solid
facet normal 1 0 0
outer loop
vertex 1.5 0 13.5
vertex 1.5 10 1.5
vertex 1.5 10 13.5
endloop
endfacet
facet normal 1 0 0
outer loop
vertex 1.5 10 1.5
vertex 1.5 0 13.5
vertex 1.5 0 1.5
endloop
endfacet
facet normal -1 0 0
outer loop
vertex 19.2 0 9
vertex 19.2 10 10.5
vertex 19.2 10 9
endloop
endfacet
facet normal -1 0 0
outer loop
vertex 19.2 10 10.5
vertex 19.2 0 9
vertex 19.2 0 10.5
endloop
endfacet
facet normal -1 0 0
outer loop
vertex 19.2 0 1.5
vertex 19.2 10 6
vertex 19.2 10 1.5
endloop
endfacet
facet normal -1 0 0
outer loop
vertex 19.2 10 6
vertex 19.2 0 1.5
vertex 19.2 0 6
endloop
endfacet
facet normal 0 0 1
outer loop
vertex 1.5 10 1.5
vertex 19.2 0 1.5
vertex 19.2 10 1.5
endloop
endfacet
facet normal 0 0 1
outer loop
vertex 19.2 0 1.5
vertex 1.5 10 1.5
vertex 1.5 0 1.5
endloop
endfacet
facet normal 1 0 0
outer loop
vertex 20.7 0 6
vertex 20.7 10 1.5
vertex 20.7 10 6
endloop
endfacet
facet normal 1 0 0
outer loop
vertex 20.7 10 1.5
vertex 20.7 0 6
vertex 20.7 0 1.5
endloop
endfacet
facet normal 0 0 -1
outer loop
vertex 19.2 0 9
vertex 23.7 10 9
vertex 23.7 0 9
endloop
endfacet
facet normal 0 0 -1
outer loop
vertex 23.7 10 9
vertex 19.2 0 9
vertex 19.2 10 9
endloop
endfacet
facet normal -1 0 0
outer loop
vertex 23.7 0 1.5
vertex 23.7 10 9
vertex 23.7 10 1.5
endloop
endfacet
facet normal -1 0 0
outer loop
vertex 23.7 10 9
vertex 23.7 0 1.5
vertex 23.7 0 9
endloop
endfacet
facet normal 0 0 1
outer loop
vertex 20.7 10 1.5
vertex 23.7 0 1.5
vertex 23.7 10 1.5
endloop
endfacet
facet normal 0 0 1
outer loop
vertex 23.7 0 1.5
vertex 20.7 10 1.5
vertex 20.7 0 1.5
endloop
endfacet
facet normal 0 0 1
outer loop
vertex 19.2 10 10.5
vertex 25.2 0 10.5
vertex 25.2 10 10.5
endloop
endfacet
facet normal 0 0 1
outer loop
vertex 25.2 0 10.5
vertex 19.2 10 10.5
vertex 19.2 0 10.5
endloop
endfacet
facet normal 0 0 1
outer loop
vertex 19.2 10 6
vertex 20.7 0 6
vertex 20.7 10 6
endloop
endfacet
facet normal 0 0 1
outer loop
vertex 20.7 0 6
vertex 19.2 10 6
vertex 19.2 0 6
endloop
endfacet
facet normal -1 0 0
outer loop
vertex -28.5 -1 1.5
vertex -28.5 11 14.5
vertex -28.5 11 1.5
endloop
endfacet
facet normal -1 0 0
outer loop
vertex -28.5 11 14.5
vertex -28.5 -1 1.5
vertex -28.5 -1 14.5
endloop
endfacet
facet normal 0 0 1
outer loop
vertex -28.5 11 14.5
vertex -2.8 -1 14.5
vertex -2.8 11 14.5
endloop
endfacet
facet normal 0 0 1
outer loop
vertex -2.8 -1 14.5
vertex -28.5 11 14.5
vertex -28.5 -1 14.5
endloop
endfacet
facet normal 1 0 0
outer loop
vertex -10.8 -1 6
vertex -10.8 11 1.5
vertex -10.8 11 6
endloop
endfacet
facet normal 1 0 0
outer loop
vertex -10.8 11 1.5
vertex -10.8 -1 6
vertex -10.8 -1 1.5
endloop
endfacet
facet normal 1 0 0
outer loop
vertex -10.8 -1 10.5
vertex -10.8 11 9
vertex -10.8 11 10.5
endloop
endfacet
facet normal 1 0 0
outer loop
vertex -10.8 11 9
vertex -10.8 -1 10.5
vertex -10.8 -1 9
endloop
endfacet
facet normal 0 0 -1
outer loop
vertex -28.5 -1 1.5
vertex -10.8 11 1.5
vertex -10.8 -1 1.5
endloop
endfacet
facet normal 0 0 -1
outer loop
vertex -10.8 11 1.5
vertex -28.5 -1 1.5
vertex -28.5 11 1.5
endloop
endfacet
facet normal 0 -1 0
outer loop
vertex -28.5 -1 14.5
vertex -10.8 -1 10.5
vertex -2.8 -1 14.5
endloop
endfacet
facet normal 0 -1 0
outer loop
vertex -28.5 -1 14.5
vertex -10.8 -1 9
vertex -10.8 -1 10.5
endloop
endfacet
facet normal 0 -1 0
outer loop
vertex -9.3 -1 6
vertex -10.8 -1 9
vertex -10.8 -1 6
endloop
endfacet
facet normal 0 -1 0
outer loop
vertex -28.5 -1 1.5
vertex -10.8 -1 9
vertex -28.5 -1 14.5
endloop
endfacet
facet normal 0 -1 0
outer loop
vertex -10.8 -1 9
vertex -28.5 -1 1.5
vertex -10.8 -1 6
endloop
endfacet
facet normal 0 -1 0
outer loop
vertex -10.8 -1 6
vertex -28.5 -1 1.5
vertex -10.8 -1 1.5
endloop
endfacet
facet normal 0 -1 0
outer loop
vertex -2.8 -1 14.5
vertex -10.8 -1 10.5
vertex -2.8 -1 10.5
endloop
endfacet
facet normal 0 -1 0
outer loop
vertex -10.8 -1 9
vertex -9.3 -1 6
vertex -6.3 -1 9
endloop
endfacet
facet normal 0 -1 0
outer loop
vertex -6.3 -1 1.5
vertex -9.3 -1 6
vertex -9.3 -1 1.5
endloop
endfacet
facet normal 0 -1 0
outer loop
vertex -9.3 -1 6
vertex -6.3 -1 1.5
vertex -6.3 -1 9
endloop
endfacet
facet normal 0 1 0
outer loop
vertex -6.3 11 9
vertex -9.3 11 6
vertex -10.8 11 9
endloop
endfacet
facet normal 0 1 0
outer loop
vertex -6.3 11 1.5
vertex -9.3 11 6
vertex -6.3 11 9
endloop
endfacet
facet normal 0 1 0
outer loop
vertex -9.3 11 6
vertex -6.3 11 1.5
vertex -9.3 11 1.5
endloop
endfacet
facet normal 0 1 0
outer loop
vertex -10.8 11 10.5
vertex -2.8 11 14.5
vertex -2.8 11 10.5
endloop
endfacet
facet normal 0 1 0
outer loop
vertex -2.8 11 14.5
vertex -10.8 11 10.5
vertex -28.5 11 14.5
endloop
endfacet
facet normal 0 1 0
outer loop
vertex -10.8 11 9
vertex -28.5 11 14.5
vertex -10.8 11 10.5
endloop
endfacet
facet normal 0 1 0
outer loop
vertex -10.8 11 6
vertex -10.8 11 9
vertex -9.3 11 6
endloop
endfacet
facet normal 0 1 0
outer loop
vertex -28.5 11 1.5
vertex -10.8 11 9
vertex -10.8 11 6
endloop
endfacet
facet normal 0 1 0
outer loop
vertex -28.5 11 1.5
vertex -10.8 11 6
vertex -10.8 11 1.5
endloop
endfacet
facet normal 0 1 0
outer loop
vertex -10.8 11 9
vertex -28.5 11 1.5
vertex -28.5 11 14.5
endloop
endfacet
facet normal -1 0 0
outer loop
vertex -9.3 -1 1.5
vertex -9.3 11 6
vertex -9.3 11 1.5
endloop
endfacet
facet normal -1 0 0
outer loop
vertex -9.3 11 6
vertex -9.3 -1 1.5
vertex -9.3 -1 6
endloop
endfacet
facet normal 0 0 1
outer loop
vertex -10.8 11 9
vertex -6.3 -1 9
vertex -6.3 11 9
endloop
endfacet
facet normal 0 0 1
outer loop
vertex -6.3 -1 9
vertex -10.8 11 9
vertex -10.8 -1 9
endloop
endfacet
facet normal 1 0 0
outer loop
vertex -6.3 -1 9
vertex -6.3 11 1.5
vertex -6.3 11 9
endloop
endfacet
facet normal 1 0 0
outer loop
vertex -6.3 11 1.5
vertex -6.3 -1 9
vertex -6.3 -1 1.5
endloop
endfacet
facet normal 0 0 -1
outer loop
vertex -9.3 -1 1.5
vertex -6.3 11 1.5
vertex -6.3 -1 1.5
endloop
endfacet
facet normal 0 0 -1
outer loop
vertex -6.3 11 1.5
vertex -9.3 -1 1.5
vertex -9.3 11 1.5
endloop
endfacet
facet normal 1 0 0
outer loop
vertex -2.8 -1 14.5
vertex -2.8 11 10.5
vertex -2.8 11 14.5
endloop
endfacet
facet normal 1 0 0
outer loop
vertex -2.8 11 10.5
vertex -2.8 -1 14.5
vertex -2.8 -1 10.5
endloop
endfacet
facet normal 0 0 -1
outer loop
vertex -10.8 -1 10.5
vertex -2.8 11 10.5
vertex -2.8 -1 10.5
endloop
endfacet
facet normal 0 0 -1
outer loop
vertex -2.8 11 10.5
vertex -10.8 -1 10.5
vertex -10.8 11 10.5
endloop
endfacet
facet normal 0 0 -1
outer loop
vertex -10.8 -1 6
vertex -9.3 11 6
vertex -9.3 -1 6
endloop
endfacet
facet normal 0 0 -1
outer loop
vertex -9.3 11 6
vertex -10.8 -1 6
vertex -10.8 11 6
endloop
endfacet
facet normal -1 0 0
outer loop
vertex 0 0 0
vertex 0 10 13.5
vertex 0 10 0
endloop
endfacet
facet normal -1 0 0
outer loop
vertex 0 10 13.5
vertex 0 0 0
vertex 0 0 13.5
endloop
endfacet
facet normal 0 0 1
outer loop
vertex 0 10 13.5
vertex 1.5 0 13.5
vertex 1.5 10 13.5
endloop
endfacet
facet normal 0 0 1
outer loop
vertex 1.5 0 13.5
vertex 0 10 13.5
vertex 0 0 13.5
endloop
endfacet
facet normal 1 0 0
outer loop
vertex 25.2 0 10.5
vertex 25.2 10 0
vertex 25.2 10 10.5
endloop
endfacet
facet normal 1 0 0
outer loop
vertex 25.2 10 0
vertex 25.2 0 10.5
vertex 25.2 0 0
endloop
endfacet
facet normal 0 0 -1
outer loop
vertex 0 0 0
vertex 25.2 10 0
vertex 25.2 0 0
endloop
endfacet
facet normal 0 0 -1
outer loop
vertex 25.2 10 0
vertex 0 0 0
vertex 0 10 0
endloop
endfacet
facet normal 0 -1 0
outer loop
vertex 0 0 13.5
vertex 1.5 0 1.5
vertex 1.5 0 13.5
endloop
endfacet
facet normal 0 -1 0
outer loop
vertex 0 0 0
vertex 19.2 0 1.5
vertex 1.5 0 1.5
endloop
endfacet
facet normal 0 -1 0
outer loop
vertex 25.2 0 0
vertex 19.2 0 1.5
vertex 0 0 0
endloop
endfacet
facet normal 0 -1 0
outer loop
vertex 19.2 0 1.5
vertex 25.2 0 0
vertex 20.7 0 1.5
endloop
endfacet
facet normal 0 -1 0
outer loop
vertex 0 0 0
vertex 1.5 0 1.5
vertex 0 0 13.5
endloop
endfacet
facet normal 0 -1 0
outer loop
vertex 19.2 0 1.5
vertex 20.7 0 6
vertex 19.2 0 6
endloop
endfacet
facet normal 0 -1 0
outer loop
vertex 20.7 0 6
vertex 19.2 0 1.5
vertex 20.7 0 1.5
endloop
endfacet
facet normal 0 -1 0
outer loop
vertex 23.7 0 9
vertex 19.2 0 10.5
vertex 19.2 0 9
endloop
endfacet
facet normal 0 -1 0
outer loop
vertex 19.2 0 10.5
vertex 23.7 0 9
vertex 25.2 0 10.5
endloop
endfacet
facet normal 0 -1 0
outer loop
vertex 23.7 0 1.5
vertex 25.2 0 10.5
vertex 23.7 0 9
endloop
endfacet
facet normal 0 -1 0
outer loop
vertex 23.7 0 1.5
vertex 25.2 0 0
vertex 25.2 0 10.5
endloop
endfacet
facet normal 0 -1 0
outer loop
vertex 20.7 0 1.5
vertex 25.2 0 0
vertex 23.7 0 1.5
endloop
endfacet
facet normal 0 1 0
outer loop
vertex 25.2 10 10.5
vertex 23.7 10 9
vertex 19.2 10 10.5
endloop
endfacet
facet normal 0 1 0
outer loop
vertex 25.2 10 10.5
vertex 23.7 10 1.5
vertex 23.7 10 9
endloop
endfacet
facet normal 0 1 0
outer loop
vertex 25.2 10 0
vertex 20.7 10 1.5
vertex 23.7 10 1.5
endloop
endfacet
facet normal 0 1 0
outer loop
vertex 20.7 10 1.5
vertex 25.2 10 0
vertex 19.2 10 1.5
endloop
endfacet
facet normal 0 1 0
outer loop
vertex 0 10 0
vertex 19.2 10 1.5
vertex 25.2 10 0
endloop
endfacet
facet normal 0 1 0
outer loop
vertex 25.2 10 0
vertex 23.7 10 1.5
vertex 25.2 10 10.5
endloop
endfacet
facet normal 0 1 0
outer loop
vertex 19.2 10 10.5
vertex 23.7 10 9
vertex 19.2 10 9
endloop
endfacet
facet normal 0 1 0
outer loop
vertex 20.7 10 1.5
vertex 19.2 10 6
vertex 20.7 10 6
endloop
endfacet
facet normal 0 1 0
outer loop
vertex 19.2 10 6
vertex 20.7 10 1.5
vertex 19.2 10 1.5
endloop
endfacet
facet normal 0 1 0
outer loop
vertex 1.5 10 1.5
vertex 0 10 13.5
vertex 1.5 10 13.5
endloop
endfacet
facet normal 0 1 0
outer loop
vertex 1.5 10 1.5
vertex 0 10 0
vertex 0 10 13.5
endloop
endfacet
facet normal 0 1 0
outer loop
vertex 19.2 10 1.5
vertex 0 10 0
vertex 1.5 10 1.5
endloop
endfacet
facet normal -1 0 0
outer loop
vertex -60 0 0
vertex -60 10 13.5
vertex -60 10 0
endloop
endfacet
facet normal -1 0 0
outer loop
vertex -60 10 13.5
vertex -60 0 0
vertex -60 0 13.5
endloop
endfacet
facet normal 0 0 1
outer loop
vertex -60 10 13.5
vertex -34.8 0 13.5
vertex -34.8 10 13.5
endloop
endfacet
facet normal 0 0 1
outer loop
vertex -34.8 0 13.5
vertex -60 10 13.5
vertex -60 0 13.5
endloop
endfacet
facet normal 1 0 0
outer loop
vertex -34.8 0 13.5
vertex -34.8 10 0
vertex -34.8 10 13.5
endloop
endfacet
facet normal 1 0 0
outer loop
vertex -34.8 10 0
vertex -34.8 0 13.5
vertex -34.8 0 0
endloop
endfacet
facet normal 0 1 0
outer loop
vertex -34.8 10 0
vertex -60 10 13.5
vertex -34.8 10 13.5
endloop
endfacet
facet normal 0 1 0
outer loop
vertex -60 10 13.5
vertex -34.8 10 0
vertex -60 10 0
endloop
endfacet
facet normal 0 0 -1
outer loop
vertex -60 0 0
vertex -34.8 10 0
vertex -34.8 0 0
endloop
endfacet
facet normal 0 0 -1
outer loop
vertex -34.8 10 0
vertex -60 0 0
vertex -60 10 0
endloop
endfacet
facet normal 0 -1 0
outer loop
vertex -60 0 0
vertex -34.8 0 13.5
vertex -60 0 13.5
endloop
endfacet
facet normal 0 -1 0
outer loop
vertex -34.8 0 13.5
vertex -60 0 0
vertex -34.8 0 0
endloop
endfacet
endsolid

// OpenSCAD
frameThickness=17.7; // mm
clipThickness=1.5; // mm
clipWidth=10; // mm
clipHeight=12; // mm
wirespace=3; // mm

// block
module block() {
  blockLength=(3*clipThickness)
    + frameThickness
    + wirespace;
  cube([blockLength, clipWidth, clipHeight + clipThickness]);
}


// cutouts
module cutouts() {
  // frame space
  translate([clipThickness, -1, clipThickness])
  cube([frameThickness, clipWidth + 2, clipHeight+1 ]);

  // wire space
  translate([frameThickness + 2 * clipThickness,
    -1, clipThickness])
  cube([wirespace, clipWidth+2, clipHeight - clipThickness * 3]);
  
  // top cutoff
  translate([frameThickness + 1 * clipThickness, -1, clipHeight - clipThickness])
  cube([8, clipWidth+2, clipThickness * 2 + 1]);
    
  // split space
  translate([frameThickness + 1 * clipThickness, -1, clipHeight - 4 * clipThickness])
  cube([clipThickness, clipWidth+2, clipThickness * 2]);  
  
}

translate([-60,0,0])
block();

translate([-30,0,0])
cutouts();

difference() {
  block();
  cutouts();
}

// 
// cube([2,25,25]);
